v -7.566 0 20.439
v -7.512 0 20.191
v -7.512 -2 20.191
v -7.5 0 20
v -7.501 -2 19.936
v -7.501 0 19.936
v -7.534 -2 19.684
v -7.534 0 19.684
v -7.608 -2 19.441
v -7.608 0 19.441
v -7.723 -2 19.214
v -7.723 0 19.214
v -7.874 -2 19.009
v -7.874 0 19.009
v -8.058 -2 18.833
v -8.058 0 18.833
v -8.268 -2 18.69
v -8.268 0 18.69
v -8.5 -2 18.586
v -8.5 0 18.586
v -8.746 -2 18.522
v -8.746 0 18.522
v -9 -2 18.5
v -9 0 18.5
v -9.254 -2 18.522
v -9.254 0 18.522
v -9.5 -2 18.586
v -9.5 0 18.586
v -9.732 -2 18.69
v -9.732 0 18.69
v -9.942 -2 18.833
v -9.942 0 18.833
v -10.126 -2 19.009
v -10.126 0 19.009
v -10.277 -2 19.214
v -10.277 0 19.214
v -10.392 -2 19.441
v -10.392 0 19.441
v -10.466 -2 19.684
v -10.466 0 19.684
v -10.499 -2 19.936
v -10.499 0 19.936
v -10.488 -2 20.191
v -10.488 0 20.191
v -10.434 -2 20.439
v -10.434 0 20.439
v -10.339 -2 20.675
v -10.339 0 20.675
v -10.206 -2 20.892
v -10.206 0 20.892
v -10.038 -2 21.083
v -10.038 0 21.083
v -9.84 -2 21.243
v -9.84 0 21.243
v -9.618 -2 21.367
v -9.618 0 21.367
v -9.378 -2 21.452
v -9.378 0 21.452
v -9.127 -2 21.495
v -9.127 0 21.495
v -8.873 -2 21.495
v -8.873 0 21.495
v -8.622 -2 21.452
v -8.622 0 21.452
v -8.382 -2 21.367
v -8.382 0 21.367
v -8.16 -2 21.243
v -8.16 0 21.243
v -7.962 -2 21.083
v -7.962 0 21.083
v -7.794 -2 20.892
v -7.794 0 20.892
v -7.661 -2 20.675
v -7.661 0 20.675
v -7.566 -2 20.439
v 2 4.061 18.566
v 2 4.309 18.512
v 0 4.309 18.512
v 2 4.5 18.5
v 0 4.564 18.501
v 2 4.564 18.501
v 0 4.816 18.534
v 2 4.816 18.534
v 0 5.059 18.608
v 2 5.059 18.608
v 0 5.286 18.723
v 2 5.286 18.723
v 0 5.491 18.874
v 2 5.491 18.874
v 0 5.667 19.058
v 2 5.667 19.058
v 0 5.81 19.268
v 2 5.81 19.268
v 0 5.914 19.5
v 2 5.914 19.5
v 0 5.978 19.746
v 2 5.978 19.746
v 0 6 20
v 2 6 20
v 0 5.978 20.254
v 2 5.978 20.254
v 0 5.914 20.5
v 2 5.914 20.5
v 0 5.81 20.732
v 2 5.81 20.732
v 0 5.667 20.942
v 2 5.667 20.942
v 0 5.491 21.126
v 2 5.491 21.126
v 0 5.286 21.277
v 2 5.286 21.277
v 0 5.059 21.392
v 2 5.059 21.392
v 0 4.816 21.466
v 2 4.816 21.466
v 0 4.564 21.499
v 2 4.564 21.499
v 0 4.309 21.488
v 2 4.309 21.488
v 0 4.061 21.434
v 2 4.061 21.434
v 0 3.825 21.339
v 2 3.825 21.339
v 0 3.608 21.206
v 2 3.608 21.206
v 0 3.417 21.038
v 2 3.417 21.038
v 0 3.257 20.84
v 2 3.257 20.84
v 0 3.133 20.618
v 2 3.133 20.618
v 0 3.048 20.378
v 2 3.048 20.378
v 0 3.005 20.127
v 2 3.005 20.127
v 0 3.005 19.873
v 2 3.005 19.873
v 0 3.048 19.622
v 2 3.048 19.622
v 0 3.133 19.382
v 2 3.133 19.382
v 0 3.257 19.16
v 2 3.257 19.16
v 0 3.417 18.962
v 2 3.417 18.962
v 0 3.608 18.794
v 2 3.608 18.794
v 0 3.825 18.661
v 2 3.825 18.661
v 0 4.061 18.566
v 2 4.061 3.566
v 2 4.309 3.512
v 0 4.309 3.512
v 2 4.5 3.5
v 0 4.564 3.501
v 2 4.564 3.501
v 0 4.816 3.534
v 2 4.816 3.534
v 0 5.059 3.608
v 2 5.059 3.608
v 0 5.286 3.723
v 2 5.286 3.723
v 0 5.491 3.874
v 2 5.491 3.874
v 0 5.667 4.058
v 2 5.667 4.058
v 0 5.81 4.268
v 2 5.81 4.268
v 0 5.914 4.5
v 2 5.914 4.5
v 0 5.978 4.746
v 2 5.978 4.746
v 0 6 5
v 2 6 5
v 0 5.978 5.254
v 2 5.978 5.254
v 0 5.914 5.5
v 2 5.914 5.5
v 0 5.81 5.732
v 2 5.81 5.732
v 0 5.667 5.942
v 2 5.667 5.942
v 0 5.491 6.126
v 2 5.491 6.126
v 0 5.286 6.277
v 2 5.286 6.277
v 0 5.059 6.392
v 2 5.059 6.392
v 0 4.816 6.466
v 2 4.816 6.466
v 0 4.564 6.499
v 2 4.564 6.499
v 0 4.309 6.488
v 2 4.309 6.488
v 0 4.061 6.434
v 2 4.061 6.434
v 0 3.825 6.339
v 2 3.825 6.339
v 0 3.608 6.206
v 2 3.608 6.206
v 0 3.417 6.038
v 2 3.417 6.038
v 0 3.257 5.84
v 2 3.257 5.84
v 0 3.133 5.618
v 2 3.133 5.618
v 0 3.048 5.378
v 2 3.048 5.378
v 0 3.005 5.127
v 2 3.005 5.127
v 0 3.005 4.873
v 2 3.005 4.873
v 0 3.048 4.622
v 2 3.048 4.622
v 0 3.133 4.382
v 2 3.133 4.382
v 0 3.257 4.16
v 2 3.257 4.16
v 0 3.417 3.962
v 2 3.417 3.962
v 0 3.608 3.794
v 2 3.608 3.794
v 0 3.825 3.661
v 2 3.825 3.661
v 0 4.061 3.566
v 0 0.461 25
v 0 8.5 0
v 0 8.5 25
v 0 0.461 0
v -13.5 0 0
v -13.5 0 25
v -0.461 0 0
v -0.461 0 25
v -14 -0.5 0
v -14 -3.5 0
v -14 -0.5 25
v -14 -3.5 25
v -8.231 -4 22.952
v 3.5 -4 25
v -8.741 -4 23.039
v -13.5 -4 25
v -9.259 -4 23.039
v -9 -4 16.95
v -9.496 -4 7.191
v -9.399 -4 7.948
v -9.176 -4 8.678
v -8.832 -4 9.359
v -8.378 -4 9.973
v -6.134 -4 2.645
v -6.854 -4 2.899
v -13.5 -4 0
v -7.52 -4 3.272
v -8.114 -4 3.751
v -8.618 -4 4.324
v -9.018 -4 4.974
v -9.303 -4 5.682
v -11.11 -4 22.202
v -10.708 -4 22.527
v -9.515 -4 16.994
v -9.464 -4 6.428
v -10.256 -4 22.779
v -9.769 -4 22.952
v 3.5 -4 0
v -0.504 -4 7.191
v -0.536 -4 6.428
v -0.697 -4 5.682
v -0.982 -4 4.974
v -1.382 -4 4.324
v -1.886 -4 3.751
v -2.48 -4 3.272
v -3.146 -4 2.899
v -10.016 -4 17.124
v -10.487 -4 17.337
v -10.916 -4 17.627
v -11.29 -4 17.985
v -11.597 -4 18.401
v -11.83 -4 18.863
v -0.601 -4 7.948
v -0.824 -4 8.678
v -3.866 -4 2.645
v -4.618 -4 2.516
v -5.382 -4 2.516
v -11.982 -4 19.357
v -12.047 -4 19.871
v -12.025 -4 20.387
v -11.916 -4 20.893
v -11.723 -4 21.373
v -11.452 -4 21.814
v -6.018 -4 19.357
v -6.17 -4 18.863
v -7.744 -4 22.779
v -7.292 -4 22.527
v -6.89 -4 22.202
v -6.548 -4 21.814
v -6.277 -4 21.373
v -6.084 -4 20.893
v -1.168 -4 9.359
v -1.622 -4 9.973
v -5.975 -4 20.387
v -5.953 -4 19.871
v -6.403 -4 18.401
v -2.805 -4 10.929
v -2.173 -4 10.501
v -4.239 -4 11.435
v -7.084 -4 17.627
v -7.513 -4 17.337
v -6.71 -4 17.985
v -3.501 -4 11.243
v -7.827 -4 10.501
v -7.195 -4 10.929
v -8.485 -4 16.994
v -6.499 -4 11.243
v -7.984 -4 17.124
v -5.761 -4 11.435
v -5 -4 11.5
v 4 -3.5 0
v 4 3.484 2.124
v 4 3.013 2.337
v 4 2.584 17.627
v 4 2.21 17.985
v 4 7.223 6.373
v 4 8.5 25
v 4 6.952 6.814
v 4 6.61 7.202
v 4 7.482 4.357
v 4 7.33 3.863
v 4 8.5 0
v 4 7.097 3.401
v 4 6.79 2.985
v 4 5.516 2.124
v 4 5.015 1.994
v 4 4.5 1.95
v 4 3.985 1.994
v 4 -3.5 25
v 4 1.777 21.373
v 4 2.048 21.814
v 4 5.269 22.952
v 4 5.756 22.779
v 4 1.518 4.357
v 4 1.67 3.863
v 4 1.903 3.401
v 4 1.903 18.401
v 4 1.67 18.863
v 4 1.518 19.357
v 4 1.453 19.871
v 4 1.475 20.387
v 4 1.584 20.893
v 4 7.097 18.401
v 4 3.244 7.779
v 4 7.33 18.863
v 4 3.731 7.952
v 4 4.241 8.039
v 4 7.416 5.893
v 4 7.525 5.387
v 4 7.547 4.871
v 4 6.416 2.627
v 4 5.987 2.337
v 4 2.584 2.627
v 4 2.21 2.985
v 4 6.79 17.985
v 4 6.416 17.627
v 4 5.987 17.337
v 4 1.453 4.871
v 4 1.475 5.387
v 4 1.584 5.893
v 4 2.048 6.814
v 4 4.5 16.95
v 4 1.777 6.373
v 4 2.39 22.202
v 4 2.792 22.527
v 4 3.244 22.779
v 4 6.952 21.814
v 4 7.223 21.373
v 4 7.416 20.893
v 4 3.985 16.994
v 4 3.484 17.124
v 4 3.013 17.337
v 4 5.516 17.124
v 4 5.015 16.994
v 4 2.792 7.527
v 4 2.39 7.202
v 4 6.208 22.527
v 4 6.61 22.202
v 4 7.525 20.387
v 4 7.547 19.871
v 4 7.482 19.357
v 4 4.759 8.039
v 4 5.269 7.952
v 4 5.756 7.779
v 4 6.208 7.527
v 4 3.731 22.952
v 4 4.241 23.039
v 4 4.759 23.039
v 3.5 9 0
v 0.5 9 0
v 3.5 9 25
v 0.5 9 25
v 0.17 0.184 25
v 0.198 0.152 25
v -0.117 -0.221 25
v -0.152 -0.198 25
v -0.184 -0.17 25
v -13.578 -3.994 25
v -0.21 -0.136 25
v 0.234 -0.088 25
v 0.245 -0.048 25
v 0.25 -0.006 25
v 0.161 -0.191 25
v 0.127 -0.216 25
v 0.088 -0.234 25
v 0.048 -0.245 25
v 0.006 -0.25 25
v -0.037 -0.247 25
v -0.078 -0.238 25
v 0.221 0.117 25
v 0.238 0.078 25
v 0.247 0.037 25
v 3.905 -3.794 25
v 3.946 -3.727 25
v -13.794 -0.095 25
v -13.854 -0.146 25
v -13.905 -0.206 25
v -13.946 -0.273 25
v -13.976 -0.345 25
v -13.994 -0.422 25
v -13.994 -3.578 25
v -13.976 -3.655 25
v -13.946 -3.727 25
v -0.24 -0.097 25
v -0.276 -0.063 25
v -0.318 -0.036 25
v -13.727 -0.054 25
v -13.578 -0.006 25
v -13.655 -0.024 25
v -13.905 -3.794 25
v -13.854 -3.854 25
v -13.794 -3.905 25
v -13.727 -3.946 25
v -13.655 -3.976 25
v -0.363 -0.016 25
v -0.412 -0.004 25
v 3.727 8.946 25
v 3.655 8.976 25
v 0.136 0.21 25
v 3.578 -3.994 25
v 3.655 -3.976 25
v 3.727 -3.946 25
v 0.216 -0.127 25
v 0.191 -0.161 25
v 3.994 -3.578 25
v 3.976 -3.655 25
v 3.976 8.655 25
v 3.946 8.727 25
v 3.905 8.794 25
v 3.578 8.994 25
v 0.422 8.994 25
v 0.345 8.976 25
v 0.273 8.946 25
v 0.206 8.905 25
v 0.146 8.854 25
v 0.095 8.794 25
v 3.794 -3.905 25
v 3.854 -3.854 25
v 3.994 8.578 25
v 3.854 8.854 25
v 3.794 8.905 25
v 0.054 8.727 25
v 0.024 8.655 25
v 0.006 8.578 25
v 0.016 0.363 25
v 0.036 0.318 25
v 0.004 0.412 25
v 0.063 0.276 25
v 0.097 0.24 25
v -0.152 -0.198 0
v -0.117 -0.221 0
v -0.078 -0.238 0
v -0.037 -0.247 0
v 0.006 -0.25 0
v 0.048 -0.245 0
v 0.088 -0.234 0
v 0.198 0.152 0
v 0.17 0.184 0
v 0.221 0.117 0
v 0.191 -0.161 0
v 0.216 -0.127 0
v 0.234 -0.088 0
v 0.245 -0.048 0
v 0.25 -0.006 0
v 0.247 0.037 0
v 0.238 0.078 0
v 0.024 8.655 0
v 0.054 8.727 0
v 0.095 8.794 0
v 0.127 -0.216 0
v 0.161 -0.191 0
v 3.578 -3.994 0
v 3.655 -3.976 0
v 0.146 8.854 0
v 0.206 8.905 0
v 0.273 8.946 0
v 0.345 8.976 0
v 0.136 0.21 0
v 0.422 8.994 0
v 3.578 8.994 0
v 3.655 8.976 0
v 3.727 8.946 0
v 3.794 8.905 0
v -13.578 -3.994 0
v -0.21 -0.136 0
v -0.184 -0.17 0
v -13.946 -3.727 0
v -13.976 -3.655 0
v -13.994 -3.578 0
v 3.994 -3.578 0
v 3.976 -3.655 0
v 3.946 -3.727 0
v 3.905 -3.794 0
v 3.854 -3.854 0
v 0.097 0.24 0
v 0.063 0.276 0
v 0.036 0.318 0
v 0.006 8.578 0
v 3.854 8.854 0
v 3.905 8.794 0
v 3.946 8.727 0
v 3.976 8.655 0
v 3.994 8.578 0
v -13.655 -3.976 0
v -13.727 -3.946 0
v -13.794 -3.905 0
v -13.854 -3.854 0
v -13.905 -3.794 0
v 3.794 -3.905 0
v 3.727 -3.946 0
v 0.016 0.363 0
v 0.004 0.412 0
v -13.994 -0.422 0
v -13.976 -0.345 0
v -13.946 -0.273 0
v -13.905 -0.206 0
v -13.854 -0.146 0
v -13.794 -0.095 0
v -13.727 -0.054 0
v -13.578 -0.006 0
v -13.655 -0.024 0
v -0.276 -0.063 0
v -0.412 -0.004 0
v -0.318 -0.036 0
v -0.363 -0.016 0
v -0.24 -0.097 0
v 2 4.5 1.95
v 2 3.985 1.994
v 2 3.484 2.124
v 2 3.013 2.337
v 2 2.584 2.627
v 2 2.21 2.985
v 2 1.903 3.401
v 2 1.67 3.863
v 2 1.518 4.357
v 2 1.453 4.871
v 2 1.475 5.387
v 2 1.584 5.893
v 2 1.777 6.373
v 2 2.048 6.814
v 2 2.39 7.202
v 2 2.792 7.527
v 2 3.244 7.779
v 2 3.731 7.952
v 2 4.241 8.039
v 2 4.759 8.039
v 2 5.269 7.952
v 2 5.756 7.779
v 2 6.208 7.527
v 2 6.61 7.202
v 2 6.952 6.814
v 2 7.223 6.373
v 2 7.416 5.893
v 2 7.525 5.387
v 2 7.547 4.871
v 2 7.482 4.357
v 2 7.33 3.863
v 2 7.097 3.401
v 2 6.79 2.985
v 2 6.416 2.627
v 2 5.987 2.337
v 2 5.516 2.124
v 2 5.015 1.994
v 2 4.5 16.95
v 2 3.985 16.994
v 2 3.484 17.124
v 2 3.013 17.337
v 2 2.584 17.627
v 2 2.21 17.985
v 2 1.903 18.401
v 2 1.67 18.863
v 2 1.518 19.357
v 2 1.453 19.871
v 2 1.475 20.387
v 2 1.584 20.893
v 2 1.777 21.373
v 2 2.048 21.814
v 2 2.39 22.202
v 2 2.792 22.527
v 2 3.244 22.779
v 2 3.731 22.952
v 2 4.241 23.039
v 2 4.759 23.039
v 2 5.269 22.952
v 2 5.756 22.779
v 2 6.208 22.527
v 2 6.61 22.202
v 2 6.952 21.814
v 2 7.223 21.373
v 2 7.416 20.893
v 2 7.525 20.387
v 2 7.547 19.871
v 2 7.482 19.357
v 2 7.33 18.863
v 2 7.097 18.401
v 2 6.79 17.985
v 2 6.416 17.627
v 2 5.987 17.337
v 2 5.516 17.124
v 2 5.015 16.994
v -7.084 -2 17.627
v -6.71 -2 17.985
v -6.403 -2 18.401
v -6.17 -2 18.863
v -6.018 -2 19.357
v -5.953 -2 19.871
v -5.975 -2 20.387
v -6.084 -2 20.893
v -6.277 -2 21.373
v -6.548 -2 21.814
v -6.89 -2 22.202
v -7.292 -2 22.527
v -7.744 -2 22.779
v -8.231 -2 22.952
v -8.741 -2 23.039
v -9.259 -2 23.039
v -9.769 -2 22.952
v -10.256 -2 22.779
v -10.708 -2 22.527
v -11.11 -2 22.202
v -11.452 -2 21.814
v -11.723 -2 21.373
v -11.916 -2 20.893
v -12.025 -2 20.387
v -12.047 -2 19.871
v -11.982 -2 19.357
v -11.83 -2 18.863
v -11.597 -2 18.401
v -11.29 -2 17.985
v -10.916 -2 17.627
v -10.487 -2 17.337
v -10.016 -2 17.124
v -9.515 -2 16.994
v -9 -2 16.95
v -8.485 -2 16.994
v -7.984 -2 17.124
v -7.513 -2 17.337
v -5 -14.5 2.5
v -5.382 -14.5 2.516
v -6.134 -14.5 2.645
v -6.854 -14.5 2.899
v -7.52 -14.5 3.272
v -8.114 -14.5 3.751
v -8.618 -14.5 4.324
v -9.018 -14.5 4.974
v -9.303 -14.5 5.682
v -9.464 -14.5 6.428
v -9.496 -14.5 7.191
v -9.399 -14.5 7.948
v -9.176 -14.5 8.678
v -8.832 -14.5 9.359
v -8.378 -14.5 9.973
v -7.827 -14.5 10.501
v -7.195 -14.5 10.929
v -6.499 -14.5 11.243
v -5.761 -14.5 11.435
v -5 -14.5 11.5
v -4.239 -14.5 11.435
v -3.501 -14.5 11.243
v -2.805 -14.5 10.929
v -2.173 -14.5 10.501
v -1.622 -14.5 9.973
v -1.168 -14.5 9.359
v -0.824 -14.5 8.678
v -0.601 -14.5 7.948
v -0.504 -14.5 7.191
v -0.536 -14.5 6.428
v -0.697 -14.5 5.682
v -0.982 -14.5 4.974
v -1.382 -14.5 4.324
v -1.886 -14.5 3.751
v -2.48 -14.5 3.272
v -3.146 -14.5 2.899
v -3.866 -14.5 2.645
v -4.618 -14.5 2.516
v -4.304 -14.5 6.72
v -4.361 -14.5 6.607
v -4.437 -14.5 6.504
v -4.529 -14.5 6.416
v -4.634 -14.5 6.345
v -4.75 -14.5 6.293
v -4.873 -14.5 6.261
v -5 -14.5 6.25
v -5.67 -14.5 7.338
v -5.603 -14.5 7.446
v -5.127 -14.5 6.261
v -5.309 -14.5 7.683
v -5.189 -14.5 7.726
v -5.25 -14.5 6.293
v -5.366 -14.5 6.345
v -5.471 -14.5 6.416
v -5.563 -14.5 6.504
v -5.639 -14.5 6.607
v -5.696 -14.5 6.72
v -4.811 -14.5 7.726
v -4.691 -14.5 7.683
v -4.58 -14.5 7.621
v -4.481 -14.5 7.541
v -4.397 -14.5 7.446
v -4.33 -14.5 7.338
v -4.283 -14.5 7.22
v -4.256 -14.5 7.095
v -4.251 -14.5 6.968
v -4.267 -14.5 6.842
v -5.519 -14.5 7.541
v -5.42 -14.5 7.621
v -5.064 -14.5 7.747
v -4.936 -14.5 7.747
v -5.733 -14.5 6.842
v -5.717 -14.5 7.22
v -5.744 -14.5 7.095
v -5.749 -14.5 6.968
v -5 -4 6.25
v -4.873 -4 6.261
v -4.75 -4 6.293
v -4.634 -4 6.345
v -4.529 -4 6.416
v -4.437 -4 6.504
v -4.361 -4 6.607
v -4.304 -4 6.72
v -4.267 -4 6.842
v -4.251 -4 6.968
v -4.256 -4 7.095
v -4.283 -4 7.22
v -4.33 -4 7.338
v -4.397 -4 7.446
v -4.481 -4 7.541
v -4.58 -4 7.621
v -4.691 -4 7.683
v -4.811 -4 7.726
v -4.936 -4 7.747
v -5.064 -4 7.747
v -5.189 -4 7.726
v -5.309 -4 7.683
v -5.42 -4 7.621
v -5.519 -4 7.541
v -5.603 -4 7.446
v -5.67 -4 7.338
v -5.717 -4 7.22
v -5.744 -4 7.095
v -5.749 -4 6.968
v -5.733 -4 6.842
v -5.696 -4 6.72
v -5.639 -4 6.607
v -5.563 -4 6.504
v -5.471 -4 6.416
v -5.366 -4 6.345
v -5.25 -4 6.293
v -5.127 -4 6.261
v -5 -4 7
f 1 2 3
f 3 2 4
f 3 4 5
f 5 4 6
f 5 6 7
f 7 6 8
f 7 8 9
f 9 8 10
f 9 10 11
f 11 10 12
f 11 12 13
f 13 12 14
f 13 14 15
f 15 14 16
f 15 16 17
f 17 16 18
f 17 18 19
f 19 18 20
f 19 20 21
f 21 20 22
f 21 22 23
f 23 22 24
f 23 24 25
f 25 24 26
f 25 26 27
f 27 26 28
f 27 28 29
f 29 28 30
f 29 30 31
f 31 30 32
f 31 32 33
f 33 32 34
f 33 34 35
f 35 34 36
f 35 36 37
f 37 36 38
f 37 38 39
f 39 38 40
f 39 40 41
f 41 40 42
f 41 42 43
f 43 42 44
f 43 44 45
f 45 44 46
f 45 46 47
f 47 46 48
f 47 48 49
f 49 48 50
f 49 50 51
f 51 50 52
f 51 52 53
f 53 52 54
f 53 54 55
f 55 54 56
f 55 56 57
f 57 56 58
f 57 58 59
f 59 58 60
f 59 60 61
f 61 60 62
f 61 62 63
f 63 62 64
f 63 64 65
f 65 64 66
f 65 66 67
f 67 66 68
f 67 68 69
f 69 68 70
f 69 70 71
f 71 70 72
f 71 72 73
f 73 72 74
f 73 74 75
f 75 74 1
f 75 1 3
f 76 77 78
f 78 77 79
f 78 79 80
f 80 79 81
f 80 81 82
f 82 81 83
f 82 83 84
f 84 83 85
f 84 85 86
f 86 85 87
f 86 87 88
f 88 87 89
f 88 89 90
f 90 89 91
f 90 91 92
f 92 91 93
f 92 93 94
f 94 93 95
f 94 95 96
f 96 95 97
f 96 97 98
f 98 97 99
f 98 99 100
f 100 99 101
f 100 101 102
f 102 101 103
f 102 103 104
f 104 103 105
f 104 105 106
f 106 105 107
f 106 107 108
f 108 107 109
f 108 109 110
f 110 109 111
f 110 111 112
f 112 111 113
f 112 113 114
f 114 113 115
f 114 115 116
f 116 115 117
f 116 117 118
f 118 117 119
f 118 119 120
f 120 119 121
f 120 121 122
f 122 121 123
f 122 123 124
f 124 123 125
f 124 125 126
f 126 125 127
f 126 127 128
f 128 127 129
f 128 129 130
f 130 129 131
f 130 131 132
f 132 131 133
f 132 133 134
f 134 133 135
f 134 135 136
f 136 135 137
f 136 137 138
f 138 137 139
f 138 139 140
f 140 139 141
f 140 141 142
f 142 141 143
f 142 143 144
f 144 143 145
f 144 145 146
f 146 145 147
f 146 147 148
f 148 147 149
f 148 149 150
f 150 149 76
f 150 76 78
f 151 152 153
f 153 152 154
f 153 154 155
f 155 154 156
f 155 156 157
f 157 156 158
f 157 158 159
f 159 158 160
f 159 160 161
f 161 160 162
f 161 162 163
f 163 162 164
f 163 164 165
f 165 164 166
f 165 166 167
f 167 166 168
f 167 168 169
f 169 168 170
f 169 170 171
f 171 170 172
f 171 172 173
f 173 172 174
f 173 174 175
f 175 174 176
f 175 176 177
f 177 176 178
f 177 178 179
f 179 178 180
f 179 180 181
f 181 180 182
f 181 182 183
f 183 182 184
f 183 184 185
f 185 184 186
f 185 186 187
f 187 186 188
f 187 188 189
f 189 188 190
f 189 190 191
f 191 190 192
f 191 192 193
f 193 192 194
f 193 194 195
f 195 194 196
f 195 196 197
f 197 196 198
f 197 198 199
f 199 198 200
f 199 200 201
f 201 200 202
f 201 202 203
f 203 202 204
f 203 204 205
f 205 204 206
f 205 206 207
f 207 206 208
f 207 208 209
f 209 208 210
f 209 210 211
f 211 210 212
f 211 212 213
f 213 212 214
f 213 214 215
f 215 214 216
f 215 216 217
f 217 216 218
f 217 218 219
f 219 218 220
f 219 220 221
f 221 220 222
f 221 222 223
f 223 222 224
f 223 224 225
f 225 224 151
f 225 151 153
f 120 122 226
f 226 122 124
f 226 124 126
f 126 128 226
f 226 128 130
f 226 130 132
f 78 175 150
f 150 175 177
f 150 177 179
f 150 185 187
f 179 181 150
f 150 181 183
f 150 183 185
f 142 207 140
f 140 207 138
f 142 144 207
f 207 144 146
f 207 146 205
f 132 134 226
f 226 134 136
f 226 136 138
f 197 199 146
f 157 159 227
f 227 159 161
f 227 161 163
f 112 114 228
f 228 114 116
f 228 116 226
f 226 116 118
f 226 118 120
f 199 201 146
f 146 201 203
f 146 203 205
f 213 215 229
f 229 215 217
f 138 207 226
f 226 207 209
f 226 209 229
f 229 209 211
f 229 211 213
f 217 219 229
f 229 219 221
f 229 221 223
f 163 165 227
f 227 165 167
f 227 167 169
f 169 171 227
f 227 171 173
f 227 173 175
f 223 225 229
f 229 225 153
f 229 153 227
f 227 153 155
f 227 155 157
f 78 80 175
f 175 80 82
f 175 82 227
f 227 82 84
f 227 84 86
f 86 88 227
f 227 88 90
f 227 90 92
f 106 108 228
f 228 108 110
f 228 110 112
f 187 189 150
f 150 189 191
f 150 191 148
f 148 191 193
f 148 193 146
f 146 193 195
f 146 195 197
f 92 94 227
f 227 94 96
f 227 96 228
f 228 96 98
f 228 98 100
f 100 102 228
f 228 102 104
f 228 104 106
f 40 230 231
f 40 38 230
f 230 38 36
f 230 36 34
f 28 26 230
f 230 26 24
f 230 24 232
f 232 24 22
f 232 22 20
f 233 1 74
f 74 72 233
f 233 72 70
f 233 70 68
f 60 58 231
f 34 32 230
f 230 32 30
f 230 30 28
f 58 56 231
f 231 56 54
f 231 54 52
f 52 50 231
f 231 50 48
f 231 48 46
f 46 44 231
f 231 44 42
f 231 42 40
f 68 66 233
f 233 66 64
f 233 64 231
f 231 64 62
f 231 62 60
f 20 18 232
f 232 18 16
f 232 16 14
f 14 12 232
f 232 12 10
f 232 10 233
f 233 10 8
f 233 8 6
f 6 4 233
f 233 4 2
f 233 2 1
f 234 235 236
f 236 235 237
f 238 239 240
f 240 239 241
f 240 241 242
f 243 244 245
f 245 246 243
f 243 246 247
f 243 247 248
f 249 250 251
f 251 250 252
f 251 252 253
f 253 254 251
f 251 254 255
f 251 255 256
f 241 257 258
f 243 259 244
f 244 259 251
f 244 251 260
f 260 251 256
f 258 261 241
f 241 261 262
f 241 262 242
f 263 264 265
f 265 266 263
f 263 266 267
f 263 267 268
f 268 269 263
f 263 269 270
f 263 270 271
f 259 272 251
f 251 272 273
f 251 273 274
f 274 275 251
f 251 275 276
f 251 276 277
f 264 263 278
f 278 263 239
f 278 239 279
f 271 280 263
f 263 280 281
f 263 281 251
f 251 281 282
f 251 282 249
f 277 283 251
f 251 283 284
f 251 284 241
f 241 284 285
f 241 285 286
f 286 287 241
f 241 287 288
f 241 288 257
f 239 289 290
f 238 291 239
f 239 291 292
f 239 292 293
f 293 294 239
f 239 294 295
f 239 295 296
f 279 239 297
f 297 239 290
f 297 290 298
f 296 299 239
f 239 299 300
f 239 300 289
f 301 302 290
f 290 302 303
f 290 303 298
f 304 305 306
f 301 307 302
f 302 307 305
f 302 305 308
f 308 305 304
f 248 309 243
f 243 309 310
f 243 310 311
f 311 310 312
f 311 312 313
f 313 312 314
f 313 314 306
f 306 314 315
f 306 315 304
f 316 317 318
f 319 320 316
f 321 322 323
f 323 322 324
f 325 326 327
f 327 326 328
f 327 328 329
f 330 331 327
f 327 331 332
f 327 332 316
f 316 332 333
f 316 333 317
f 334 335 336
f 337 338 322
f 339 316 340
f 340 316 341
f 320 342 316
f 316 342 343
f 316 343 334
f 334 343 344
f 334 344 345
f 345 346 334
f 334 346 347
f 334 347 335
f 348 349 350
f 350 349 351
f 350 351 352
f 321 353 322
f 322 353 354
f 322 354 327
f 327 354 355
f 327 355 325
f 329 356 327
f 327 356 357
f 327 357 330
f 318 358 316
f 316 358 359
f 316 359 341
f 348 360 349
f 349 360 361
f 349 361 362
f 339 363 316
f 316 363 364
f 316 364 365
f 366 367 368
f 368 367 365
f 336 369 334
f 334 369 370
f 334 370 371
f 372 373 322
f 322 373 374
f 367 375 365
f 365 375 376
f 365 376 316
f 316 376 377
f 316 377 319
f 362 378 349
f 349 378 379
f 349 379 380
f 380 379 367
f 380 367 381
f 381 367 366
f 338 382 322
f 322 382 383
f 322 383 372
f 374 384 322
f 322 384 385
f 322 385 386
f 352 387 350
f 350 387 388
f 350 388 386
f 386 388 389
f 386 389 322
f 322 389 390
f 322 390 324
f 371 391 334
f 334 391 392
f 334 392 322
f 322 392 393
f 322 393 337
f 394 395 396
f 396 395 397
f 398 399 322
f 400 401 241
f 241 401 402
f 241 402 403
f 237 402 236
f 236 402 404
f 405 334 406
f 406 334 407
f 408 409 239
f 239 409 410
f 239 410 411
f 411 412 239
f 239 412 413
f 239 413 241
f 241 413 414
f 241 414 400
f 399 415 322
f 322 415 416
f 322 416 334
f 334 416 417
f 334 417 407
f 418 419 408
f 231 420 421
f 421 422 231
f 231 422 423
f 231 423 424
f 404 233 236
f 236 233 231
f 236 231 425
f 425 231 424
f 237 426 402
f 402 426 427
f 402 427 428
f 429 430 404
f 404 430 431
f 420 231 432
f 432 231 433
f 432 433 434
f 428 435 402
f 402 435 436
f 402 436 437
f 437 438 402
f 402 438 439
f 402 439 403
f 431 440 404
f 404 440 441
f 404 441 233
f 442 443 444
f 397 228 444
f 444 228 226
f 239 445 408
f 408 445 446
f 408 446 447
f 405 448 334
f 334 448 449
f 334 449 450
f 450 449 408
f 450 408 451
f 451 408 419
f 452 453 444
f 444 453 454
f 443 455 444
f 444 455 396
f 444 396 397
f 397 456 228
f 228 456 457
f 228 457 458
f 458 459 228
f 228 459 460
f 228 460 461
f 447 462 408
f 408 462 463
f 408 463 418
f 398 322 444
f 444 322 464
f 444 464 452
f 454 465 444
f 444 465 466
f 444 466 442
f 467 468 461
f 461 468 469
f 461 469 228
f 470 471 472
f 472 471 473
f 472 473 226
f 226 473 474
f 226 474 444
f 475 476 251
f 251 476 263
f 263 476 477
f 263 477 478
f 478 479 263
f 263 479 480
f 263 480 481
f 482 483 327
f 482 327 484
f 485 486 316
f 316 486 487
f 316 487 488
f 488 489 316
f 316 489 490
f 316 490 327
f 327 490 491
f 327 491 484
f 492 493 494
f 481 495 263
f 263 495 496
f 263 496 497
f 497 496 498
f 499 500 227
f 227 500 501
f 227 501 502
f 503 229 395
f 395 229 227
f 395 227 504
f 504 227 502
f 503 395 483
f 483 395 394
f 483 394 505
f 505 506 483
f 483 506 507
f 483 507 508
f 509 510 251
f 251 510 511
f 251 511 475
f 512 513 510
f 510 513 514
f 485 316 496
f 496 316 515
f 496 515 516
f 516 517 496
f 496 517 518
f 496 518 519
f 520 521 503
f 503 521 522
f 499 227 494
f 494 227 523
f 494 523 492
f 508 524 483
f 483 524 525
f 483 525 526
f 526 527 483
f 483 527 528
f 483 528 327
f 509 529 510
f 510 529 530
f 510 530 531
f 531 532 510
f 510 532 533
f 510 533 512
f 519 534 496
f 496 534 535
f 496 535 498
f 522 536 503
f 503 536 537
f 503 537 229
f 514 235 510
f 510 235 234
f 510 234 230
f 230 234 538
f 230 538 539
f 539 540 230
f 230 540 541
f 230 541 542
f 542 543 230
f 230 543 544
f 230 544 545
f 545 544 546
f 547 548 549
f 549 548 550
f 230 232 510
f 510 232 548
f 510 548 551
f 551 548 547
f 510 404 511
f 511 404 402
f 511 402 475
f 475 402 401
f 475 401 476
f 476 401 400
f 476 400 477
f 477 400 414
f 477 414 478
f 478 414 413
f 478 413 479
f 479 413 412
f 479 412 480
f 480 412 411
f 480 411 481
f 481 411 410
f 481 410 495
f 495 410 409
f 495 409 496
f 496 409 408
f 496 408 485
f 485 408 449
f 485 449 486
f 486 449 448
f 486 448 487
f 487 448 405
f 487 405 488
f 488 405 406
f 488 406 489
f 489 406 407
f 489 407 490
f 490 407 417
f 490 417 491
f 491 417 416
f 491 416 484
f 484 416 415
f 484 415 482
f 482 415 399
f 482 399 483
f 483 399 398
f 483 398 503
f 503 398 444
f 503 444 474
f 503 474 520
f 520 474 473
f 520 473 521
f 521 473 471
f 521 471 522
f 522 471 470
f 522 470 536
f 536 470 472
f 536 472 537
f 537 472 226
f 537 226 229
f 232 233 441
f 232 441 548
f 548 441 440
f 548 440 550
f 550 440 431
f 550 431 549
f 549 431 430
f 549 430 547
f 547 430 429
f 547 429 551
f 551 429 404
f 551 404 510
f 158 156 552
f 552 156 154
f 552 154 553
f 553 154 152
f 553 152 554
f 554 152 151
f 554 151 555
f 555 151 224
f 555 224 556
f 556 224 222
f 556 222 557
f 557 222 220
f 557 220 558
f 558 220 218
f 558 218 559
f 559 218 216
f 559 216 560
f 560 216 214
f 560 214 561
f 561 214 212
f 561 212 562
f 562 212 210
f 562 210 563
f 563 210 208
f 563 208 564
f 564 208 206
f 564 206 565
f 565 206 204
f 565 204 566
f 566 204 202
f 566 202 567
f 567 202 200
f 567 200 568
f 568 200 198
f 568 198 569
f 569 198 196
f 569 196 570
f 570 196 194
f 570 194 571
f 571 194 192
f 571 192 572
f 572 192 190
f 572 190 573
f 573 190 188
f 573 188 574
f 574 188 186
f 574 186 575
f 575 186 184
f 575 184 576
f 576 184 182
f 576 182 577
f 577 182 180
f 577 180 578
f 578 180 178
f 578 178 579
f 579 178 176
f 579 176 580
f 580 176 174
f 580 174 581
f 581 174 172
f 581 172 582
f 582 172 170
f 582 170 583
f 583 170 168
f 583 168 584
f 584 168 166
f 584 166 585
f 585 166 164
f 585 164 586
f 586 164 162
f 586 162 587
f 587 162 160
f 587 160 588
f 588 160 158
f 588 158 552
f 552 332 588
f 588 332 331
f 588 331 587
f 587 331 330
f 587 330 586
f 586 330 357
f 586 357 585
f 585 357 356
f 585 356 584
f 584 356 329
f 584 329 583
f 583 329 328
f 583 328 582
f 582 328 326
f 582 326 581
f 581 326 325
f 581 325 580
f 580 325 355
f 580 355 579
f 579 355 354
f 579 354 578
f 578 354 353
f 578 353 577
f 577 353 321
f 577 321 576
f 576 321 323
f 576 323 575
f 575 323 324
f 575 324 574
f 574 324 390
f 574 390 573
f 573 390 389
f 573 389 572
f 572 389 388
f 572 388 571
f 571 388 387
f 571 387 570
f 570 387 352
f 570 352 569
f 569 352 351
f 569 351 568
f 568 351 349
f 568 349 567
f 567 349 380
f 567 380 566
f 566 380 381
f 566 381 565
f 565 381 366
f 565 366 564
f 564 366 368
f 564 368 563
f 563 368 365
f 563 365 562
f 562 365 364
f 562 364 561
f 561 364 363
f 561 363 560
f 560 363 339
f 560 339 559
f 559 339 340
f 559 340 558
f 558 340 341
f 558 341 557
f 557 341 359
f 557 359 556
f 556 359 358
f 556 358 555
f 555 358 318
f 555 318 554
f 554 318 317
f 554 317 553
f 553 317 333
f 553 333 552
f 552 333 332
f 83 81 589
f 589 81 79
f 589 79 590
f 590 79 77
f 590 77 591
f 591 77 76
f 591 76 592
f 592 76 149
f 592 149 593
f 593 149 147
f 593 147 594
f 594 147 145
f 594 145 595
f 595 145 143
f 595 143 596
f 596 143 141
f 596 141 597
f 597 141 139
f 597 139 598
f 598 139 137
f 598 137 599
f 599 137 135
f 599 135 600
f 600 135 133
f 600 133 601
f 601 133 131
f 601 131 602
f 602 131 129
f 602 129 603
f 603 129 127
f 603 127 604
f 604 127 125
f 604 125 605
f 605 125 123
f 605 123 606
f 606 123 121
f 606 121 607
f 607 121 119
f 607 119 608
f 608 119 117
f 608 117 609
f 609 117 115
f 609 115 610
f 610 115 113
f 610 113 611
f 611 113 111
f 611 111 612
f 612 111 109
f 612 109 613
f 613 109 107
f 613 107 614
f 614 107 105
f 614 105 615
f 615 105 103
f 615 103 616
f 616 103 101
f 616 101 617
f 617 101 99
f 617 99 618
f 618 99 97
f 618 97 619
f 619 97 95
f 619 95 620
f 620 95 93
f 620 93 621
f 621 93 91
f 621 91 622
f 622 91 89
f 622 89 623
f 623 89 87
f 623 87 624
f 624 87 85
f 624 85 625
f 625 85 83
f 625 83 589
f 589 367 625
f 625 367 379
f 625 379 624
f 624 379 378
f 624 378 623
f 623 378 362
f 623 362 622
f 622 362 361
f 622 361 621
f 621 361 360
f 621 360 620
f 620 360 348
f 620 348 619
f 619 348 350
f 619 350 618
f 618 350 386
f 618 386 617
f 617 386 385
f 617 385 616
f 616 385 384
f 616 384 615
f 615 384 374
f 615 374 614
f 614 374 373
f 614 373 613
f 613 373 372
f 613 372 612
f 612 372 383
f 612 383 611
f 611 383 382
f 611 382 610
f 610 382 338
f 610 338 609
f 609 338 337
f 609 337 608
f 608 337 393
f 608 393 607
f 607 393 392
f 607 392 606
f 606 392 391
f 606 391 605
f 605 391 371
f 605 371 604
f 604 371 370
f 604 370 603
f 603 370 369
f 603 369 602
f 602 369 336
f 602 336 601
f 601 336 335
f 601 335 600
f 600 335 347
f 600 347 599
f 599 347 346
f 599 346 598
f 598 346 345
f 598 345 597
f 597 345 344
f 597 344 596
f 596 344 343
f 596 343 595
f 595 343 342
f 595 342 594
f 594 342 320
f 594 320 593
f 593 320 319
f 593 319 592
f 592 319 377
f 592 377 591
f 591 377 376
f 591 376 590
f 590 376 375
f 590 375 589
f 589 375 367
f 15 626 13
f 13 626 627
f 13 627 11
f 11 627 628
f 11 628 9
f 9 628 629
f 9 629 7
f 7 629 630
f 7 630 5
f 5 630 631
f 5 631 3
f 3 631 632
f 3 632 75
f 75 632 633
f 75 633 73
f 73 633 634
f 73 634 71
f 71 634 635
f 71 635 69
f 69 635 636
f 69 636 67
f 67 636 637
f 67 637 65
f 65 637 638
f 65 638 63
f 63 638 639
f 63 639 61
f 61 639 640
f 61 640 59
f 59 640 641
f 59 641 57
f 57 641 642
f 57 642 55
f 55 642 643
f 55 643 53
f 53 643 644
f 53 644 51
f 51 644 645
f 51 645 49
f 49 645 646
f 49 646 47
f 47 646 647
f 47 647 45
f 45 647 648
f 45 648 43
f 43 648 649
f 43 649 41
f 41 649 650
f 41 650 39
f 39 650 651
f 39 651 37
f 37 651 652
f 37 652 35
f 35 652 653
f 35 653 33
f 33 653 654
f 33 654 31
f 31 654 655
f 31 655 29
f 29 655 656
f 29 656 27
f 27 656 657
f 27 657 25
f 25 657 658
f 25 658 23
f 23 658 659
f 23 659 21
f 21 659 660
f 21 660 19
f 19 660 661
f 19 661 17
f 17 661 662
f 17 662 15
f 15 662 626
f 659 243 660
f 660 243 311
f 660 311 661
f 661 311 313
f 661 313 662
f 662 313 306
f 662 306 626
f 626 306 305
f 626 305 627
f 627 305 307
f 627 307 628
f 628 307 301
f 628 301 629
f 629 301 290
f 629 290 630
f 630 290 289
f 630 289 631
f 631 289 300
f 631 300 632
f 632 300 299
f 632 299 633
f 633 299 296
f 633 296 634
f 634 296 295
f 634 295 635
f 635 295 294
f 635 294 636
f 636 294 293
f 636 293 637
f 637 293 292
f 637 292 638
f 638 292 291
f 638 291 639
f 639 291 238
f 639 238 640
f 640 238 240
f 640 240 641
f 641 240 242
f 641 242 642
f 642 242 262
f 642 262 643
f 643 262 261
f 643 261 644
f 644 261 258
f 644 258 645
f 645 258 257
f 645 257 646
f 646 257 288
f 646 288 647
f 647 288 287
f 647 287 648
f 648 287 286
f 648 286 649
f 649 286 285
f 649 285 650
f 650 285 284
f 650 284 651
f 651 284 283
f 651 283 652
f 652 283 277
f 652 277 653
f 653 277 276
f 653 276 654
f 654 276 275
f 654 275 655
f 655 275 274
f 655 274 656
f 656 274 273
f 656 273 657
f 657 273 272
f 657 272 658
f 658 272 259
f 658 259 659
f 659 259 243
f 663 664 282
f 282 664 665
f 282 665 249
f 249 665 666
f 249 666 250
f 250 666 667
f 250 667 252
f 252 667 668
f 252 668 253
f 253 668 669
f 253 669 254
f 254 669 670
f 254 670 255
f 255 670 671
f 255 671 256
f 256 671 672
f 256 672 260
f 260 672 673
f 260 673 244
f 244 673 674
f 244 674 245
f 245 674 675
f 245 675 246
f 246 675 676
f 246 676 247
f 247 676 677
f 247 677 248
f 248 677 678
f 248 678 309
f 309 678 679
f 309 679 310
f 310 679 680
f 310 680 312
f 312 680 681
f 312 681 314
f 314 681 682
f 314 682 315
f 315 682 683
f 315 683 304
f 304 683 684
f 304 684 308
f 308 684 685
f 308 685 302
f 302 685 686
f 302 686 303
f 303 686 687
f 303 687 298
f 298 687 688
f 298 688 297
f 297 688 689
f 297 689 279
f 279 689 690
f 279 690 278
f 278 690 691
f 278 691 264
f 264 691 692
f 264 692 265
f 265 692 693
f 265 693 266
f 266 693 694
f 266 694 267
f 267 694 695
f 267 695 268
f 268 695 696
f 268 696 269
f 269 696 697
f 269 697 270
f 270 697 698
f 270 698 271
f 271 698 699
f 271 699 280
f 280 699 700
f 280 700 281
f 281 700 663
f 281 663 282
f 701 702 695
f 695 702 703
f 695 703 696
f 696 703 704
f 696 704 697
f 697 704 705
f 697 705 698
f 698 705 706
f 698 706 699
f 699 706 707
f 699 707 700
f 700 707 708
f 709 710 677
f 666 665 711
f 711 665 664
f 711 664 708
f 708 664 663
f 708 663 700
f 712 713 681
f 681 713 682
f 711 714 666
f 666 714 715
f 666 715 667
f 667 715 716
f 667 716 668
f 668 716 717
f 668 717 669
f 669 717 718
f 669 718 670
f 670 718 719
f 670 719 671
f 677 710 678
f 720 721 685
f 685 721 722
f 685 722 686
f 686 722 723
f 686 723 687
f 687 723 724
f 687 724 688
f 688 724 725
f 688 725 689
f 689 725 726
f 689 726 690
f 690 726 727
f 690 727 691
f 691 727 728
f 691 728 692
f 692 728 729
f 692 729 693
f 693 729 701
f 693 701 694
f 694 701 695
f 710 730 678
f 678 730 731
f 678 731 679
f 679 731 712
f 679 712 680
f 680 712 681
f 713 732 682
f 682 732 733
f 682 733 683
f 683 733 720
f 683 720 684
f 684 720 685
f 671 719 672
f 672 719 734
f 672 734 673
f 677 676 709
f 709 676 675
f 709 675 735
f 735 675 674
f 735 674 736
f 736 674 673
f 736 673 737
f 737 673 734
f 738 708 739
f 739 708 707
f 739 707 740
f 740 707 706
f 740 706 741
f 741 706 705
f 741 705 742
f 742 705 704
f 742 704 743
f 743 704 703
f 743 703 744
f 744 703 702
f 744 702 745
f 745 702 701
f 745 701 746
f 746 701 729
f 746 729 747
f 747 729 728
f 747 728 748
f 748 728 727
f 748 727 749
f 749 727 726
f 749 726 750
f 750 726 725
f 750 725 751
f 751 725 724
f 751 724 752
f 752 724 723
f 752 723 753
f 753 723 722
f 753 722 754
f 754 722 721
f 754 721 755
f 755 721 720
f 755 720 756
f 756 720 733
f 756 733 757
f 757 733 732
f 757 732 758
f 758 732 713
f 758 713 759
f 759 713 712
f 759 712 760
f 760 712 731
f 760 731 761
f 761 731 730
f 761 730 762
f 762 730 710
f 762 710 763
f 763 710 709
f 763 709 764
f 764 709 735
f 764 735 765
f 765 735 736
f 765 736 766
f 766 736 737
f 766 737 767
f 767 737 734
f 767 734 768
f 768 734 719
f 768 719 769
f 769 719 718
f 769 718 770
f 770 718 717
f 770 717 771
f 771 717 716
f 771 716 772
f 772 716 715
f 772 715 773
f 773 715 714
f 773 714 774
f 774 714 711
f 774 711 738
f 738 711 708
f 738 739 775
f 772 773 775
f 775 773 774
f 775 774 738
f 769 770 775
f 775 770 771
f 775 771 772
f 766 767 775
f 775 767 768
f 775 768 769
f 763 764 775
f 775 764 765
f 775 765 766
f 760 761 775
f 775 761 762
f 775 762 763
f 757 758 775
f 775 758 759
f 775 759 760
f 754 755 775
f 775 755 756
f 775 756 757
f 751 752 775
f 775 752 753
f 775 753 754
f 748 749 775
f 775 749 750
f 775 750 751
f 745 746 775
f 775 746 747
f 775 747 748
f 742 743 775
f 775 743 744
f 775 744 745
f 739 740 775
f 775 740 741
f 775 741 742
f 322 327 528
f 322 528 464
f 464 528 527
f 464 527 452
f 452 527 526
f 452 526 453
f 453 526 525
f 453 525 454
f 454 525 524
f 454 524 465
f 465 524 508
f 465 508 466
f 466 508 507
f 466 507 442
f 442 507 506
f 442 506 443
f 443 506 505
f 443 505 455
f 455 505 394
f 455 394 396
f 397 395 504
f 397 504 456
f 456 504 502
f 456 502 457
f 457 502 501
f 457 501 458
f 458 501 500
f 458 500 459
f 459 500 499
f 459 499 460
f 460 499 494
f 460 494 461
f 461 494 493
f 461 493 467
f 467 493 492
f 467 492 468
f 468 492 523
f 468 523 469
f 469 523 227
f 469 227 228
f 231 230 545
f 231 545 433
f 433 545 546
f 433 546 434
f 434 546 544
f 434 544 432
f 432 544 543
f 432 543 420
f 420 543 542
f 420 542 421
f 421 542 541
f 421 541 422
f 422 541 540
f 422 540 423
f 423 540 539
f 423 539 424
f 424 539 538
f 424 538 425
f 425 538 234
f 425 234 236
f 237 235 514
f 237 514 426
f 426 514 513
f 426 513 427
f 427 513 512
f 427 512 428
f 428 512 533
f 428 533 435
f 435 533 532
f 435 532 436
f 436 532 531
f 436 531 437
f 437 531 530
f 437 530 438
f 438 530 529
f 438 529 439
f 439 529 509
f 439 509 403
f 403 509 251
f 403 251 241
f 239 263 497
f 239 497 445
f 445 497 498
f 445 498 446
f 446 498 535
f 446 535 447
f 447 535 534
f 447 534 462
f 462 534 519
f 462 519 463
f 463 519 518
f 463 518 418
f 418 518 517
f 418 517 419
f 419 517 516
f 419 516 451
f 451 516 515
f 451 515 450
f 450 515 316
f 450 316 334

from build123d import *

# Parameters (mm, degrees)
BOSS_EXTRUDE1_DEPTH = 25
CUT_EXTRUDE1_REACH  = 33.464
SKETCH2_R           = 1.5
CUT_EXTRUDE2_REACH  = 34.094
SKETCH3_R           = 1.5
CUT_EXTRUDE3_REACH  = 32.033
SKETCH5_R           = 0.25
FILLET1_R           = 0.3
SKETCH6_R           = 3.05
CUT_EXTRUDE4_DEPTH  = 2
SKETCH7_R           = 3.05
CUT_EXTRUDE5_DEPTH  = 2
SKETCH9_R           = 4.5
BOSS_EXTRUDE2_DEPTH = 10.5
SKETCH10_R          = 0.75
CUT_EXTRUDE6_DEPTH  = 10.5
FILLET2_R           = 0.5


with BuildPart() as part:
    # Sketch1 → Boss-Extrude1 (new body)
    with BuildSketch(Plane.XY):
        Polygon((0, 0), (-14, 0), (-14, -4), (4, -4), (4, 9), (0, 9), align=None)
    extrude(amount=BOSS_EXTRUDE1_DEPTH)

    # Sketch2 → Cut-Extrude1 (cut, up to next)
    with BuildSketch(Plane.XZ.offset(4), mode=Mode.PRIVATE) as cut_extrude1_sk1:
        with Locations(Location((-9, 20, 0), (0, 0, 270))):
            Circle(SKETCH2_R)
    cut_extrude1_tool1 = extrude(cut_extrude1_sk1.sketch, amount=-CUT_EXTRUDE1_REACH, mode=Mode.PRIVATE) & part.part
    add(cut_extrude1_tool1.solids().sort_by_distance((-9, -4, 20))[0], mode=Mode.SUBTRACT)

    # Sketch3 → Cut-Extrude2 (cut, up to next)
    with BuildSketch(Plane(origin=(4, 0, 0), x_dir=(0, 0, -1), z_dir=(1, 0, 0)), mode=Mode.PRIVATE) as cut_extrude2_sk1:
        with Locations(Location((-5, 4.5, 0), (0, 0, 90))):
            Circle(SKETCH3_R)
    cut_extrude2_tool1 = extrude(cut_extrude2_sk1.sketch, amount=-CUT_EXTRUDE2_REACH, mode=Mode.PRIVATE) & part.part
    # Sketch3 → Cut-Extrude2 (cut, up to next)
    with BuildSketch(Plane(origin=(4, 0, 0), x_dir=(0, 0, -1), z_dir=(1, 0, 0)), mode=Mode.PRIVATE) as cut_extrude2_sk2:
        with Locations(Location((-20, 4.5, 0), (0, 0, 90))):
            Circle(SKETCH3_R)
    cut_extrude2_tool2 = extrude(cut_extrude2_sk2.sketch, amount=-CUT_EXTRUDE2_REACH, mode=Mode.PRIVATE) & part.part
    add(cut_extrude2_tool1.solids().sort_by_distance((4, 4.5, 5))[0], mode=Mode.SUBTRACT)
    add(cut_extrude2_tool2.solids().sort_by_distance((4, 4.5, 20))[0], mode=Mode.SUBTRACT)

    # Sketch5 → Cut-Extrude3 (cut, up to next)
    with BuildSketch(Plane.XY.offset(25), mode=Mode.PRIVATE) as cut_extrude3_sk1:
        Circle(SKETCH5_R)
    cut_extrude3_tool1 = extrude(cut_extrude3_sk1.sketch, amount=-CUT_EXTRUDE3_REACH, mode=Mode.PRIVATE) & part.part
    add(cut_extrude3_tool1.solids().sort_by_distance((0, 0, 25))[0], mode=Mode.SUBTRACT)

    # Fillet1
    fillet1_edges = [part.edges().sort_by_distance(p)[0] for p in [
        (0, 0.25, 12.5),
        (-0.25, 0, 12.5),
    ]]
    fillet(fillet1_edges, radius=FILLET1_R)

    # Sketch6 → Cut-Extrude4 (cut)
    with BuildSketch(Plane(origin=(4, 0, 0), x_dir=(0, 0, -1), z_dir=(1, 0, 0))):
        with Locations((-20, 4.5)):
            Circle(SKETCH6_R)
        with Locations((-5, 4.5)):
            Circle(SKETCH6_R)
    extrude(amount=-CUT_EXTRUDE4_DEPTH, mode=Mode.SUBTRACT)

    # Sketch7 → Cut-Extrude5 (cut)
    with BuildSketch(Plane.XZ.offset(4)):
        with Locations(Location((-9, 20, 0), (0, 0, 270))):
            Circle(SKETCH7_R)
    extrude(amount=-CUT_EXTRUDE5_DEPTH, mode=Mode.SUBTRACT)

    # Sketch9 → Boss-Extrude2 (add)
    with BuildSketch(Plane.XZ.offset(4)):
        with Locations(Location((-5, 7, 0), (0, 0, 90))):
            Circle(SKETCH9_R)
    extrude(amount=BOSS_EXTRUDE2_DEPTH)

    # Sketch10 → Cut-Extrude6 (cut)
    with BuildSketch(Plane.XZ.offset(14.5)):
        with Locations(Location((-5, 7, 0), (0, 0, 270))):
            Circle(SKETCH10_R)
    extrude(amount=-CUT_EXTRUDE6_DEPTH, mode=Mode.SUBTRACT)

    # Fillet2
    fillet2_edges = [part.edges().sort_by_distance(p)[0] for p in [
        (0, 9, 12.5),
        (4, 9, 12.5),
        (4, -4, 12.5),
        (-14, -4, 12.5),
        (-14, 0, 12.5),
    ]]
    fillet(fillet2_edges, radius=FILLET2_R)


solid = part.part
